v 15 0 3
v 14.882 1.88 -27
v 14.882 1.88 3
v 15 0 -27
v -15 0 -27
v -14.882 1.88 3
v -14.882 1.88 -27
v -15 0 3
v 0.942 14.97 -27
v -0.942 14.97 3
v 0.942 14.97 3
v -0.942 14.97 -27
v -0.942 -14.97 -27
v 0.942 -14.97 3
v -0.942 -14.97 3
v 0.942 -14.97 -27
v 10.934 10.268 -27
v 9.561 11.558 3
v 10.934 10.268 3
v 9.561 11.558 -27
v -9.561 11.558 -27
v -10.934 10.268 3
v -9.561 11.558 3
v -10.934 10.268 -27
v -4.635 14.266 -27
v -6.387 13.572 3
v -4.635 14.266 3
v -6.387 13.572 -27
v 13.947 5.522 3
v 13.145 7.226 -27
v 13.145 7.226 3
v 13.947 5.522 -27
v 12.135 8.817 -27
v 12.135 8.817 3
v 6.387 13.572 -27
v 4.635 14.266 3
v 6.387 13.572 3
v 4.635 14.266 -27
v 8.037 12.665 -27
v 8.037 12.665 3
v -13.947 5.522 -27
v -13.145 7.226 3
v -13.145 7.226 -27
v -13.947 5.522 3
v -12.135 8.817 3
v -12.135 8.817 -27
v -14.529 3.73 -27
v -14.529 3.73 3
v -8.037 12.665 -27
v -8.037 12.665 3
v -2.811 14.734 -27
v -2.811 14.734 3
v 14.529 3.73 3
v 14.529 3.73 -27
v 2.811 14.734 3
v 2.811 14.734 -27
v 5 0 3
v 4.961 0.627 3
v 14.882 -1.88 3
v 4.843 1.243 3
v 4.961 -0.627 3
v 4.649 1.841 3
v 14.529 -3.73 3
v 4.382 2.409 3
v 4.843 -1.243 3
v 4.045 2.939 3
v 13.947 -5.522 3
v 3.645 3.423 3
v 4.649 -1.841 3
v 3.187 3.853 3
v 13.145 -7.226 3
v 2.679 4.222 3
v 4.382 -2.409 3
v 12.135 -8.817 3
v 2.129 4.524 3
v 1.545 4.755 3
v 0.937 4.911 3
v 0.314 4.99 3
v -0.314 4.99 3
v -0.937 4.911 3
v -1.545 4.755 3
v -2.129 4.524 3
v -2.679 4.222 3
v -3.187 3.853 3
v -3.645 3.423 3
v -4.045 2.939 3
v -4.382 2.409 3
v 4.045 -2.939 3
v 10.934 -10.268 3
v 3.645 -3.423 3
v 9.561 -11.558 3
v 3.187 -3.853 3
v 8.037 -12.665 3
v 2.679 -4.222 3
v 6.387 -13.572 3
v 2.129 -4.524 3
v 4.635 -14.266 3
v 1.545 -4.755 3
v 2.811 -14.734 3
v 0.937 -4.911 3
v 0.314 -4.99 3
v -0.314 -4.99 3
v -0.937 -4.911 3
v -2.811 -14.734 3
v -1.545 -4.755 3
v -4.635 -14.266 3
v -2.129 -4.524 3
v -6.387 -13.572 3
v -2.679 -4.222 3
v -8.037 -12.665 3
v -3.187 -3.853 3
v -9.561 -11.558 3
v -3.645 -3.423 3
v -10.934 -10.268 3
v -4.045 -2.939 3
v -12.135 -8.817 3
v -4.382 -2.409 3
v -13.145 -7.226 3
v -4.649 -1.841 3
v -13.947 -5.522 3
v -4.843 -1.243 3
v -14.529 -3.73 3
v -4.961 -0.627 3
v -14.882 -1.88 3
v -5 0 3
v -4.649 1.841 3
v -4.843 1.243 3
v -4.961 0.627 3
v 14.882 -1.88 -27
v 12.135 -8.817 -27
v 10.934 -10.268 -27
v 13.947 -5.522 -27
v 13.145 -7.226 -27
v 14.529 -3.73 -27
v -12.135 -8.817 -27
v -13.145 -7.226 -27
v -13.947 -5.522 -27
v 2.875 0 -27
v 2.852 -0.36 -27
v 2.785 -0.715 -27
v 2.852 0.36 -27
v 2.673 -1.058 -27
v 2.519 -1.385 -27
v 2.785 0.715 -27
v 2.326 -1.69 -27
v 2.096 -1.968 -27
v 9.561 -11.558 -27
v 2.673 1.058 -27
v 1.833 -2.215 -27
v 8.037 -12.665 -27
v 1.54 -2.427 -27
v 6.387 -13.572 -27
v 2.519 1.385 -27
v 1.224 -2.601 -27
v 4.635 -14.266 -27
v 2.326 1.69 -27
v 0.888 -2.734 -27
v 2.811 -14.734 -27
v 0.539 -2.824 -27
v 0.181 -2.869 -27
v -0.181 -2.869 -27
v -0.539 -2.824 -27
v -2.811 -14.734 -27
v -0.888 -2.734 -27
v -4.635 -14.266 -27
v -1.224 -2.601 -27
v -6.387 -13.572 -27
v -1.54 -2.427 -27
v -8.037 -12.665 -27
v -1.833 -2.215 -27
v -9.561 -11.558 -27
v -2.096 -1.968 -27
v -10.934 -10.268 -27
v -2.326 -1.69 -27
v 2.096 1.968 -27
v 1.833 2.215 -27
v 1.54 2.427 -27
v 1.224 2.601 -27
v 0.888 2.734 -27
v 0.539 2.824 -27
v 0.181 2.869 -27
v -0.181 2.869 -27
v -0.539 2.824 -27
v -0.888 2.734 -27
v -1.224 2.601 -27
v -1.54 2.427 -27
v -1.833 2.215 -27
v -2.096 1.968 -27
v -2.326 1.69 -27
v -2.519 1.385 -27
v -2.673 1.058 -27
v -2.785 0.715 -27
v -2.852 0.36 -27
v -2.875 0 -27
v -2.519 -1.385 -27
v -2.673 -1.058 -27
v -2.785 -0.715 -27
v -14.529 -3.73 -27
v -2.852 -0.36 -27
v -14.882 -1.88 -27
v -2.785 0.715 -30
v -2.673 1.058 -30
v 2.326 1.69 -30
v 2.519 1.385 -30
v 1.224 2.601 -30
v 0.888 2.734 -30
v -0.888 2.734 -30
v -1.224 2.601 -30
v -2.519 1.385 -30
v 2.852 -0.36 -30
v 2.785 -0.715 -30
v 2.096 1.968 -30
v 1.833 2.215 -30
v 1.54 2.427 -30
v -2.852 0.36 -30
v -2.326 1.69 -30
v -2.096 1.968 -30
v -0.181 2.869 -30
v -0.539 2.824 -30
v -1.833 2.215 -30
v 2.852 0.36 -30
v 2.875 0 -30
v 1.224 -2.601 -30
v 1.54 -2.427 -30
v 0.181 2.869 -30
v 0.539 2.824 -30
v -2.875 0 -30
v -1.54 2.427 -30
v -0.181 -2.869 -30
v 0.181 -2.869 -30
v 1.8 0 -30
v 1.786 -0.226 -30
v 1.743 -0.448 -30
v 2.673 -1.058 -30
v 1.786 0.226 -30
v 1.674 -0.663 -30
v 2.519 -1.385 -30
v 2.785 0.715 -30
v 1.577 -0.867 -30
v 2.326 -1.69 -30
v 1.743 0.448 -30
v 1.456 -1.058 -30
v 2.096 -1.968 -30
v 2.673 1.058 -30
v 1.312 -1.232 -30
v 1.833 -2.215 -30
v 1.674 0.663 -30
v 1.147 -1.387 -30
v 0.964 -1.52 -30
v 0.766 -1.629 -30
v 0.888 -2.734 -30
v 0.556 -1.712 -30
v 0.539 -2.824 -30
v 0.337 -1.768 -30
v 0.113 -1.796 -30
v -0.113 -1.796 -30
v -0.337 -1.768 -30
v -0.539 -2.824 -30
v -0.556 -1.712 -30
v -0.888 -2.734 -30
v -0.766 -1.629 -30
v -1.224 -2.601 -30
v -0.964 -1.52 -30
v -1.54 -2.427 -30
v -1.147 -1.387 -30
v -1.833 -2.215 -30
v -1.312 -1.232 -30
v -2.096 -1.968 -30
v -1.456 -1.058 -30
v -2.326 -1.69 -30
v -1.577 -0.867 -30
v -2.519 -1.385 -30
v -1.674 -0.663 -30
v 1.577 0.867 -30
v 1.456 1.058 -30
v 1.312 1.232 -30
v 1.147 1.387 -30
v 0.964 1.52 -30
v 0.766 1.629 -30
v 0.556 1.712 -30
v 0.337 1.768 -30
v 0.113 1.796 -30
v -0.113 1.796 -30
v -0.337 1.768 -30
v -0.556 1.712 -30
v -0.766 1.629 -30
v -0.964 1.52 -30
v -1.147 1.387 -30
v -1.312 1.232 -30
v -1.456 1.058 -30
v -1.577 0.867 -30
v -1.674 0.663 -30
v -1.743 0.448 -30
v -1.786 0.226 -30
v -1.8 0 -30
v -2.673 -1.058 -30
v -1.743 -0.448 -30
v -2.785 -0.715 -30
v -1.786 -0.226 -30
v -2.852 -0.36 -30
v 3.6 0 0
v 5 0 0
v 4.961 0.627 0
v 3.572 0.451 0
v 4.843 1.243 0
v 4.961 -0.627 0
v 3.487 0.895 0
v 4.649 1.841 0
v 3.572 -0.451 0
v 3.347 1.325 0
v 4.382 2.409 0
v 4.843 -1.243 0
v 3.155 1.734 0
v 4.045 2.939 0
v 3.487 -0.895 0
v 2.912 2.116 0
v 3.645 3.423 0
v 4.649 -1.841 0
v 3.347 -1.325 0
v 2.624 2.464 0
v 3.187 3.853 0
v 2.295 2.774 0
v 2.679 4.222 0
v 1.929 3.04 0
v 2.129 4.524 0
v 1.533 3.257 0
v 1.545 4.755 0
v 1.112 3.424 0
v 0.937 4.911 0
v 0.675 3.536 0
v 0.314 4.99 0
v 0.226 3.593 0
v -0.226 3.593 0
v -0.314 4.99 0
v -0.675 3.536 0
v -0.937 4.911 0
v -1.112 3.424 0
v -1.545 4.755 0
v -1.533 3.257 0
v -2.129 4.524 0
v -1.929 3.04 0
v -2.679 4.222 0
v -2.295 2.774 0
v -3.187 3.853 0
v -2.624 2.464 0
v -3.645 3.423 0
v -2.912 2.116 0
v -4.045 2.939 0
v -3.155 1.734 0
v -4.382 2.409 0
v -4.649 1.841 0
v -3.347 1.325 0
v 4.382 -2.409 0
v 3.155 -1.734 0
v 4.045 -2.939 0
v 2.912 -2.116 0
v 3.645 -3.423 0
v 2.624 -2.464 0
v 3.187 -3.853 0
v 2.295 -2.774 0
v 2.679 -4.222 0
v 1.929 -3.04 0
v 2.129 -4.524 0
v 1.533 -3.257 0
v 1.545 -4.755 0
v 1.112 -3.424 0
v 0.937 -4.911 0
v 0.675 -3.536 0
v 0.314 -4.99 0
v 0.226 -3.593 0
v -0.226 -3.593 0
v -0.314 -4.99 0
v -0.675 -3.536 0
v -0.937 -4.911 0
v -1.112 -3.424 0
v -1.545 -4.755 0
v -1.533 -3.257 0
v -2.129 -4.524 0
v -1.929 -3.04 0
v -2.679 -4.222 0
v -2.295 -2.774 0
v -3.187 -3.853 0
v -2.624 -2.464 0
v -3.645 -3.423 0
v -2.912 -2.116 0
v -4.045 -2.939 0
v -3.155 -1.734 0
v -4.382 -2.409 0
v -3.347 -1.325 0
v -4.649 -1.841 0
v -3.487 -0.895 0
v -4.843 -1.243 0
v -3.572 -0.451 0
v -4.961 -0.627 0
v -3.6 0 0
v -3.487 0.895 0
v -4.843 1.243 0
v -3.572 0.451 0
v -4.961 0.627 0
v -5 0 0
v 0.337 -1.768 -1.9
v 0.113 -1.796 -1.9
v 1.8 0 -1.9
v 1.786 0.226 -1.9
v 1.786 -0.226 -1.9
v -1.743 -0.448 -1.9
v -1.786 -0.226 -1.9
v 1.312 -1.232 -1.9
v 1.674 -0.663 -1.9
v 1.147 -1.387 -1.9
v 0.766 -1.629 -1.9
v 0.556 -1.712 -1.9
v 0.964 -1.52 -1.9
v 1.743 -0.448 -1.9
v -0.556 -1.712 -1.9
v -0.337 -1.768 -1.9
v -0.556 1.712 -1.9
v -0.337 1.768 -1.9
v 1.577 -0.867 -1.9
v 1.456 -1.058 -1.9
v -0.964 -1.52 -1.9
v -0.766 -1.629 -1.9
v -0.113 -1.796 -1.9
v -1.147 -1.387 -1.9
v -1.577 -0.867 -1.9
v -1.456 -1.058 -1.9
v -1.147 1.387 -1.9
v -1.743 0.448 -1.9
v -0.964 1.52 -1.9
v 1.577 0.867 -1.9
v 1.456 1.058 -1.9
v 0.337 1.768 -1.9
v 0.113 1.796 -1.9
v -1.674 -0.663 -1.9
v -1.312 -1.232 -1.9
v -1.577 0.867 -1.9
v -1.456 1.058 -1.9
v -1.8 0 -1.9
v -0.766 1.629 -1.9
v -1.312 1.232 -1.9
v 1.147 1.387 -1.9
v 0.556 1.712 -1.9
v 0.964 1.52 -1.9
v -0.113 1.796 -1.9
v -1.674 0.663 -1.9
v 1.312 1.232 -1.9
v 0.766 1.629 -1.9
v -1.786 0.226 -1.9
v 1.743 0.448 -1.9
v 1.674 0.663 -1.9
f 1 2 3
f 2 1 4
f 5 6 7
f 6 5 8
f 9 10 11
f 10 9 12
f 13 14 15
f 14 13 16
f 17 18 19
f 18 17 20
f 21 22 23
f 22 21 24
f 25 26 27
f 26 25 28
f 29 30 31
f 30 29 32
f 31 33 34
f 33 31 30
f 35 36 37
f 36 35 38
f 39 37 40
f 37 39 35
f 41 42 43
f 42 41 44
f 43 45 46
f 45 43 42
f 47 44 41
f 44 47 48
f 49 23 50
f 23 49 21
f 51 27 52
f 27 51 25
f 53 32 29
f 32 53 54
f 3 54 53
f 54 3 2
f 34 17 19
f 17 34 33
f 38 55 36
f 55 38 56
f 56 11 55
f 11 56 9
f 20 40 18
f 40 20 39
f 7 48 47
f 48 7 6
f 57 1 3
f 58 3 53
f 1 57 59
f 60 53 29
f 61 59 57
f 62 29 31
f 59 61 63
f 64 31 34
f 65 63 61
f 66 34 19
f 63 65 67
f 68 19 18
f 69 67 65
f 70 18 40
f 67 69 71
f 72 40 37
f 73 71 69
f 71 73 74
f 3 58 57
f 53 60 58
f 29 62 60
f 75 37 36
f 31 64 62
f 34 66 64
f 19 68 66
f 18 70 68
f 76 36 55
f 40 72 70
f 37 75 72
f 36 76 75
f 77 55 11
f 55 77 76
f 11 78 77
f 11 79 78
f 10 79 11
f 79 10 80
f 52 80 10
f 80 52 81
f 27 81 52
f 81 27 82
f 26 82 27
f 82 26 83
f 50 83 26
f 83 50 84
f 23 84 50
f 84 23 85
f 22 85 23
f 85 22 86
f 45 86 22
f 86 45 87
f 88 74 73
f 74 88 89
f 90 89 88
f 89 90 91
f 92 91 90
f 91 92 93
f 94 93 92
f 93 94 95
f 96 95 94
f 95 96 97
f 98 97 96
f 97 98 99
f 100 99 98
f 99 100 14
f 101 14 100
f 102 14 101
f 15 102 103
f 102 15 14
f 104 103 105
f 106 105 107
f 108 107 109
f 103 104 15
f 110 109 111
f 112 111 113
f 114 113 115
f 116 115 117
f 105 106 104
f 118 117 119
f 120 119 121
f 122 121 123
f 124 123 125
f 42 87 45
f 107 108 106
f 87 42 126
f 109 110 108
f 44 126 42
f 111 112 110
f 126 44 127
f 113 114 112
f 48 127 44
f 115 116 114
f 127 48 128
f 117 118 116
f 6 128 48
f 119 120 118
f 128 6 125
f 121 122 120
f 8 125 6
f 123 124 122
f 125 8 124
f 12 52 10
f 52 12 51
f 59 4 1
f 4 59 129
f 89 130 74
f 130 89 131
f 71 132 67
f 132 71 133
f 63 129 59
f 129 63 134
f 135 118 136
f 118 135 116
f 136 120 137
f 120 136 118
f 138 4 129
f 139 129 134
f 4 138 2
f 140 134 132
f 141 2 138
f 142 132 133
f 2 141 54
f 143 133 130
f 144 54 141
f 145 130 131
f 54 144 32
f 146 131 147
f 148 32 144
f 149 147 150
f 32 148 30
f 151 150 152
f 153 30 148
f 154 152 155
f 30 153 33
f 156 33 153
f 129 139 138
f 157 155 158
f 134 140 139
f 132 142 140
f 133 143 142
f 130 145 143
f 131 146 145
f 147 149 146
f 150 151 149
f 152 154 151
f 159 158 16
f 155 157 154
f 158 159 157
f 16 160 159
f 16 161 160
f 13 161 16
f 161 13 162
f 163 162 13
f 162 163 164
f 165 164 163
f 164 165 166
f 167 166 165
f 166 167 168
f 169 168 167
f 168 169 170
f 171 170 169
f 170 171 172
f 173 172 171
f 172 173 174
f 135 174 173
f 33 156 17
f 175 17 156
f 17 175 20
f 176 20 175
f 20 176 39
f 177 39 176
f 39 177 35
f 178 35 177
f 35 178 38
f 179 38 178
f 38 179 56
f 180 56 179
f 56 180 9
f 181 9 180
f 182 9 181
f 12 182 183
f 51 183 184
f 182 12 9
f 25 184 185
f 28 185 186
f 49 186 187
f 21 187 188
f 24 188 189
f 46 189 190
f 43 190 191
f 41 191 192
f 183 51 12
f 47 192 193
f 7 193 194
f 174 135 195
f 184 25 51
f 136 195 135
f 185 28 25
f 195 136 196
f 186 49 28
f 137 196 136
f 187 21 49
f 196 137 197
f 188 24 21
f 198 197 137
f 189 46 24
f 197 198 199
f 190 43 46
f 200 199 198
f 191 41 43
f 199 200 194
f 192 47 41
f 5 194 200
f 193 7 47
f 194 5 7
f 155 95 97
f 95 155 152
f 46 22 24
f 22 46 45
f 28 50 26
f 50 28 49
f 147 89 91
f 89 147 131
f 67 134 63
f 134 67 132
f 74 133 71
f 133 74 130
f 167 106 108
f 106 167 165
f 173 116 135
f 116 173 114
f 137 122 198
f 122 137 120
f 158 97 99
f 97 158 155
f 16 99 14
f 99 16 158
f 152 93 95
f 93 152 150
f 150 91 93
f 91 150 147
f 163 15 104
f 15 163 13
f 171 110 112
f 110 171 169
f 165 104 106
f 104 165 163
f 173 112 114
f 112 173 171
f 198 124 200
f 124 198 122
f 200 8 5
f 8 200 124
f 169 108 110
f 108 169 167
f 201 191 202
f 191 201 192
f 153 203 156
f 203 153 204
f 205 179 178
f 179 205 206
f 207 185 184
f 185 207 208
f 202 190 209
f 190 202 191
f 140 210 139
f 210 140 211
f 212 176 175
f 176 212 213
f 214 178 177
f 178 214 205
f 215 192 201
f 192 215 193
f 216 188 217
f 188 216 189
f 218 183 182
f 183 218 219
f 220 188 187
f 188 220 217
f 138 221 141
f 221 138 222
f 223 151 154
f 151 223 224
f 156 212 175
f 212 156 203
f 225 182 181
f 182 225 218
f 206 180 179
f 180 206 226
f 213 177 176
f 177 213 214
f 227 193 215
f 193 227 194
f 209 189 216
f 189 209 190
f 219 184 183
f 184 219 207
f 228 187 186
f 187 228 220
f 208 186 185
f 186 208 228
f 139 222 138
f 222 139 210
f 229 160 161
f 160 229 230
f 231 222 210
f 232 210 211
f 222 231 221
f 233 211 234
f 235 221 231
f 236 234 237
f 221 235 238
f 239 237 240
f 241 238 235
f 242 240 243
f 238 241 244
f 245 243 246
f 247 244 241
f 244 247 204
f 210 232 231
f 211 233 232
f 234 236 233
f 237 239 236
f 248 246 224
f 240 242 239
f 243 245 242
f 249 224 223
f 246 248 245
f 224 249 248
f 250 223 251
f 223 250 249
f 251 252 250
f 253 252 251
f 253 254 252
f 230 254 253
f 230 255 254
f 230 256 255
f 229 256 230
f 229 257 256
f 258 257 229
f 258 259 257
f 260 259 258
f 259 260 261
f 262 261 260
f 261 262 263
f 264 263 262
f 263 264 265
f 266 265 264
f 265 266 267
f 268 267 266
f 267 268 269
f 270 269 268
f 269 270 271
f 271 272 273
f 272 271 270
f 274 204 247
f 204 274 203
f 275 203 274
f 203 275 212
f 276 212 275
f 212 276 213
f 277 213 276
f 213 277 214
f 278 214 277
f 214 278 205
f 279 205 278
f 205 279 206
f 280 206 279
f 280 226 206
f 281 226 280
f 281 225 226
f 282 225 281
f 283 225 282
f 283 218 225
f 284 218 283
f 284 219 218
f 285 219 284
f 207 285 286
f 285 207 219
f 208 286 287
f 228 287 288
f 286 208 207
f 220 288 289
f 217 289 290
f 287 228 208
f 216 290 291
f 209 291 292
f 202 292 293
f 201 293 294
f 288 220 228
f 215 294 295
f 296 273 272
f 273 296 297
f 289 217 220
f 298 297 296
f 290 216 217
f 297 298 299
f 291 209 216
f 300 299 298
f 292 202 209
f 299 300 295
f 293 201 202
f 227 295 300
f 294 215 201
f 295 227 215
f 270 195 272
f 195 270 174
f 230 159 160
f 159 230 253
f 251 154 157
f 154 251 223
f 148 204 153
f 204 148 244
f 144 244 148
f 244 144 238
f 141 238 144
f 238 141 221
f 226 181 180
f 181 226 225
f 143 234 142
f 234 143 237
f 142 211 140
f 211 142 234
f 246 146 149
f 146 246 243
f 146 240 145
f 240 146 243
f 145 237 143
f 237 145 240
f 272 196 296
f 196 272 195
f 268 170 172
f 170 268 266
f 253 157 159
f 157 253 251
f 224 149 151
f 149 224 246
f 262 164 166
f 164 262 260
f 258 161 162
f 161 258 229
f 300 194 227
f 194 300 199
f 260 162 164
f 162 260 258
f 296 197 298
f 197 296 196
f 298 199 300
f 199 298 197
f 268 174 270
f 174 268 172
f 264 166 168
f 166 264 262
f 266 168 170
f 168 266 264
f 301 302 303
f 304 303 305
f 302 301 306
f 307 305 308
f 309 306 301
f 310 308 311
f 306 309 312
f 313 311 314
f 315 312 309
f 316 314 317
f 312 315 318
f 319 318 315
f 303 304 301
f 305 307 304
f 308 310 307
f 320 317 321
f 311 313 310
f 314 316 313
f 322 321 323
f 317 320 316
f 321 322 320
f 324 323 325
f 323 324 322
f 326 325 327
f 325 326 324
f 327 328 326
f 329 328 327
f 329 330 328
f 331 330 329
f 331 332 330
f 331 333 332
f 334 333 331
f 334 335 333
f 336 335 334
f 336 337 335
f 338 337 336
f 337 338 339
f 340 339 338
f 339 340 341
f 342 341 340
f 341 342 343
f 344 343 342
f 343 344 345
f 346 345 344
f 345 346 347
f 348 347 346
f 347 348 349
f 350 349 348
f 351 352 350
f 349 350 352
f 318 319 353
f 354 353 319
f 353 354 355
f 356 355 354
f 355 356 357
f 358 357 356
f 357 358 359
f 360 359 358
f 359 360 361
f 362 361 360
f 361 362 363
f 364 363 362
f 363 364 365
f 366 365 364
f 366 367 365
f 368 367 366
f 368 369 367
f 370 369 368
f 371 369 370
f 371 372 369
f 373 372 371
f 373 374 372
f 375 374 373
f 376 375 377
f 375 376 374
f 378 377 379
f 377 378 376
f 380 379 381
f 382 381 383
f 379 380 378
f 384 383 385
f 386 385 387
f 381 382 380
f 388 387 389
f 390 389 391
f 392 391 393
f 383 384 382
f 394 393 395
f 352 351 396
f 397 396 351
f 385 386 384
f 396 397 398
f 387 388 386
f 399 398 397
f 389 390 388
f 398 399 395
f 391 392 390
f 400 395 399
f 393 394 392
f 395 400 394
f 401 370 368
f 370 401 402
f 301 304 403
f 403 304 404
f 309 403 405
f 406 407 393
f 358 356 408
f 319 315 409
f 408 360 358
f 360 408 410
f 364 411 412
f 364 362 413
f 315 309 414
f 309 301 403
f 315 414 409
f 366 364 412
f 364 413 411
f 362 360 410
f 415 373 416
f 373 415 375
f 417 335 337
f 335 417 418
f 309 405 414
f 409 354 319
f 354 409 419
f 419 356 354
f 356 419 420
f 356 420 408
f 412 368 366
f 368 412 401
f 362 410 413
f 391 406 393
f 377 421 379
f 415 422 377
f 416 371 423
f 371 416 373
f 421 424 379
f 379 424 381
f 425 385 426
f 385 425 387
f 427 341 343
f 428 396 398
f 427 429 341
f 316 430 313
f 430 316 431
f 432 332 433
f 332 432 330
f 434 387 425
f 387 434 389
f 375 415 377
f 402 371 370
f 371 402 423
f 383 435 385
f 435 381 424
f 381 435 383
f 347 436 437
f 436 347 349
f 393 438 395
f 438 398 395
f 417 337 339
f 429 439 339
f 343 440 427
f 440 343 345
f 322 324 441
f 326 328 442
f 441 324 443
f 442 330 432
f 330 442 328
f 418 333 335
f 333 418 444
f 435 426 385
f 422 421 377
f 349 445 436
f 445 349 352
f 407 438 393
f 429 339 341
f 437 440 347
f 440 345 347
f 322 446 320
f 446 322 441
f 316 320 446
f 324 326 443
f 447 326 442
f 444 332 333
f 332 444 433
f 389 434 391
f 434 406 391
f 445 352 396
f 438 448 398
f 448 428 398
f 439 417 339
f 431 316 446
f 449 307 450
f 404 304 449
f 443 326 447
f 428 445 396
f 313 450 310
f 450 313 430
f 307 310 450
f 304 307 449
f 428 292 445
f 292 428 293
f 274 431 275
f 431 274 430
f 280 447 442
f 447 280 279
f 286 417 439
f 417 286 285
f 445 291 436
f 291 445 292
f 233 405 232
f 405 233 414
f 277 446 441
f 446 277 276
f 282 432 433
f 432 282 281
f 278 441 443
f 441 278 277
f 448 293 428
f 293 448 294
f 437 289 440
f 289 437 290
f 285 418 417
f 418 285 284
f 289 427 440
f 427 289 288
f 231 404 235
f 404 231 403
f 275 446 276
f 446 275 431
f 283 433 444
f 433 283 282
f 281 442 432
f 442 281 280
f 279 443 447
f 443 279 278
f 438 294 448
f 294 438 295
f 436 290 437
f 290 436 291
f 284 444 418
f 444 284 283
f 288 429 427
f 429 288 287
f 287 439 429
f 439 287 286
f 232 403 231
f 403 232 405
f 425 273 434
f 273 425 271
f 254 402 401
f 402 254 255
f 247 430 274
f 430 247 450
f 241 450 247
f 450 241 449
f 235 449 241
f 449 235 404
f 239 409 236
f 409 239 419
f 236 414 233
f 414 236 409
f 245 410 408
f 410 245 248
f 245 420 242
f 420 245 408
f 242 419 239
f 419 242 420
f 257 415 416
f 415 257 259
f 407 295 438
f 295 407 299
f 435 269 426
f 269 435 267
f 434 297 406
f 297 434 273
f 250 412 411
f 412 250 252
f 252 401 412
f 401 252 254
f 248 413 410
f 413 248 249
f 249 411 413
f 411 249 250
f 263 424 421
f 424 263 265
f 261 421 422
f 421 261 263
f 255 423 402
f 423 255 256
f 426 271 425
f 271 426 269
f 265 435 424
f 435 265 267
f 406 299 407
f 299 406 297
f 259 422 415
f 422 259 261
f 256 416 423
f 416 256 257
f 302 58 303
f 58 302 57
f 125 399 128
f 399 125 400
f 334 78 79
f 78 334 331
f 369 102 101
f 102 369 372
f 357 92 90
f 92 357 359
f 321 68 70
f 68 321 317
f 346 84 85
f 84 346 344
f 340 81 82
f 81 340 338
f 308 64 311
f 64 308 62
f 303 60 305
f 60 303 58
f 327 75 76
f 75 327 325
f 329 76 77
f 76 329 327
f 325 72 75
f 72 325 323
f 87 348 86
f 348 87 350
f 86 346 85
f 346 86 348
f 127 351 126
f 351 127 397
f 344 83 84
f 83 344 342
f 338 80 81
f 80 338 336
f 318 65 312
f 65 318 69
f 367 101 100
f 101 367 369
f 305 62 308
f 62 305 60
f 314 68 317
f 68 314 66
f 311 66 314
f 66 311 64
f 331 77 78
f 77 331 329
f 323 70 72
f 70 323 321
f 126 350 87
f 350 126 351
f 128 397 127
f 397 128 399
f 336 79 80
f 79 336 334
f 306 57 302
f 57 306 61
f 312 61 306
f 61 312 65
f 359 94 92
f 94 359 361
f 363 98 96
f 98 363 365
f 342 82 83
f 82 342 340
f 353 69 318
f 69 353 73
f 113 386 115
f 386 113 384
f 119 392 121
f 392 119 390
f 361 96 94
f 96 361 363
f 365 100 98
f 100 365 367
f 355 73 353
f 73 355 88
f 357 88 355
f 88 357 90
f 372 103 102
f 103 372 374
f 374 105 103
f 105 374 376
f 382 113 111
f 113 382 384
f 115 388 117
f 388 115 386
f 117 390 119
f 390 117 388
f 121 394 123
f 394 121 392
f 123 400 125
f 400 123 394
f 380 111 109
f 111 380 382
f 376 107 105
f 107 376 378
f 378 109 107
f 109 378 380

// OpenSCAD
$fn = 50;


difference() {
	union() {
		translate(v = [0, 0, -27.0000000000]) {
			cylinder(h = 30, r = 15.0000000000);
		}
		#translate(v = [0, 0, -30.0000000000]) {
			cylinder(h = 30, r = 2.8750000000);
		}
	}
	union() {
		translate(v = [0, 0, 0]) {
			rotate(a = [0, 0, 0]) {
				difference() {
					union() {
						translate(v = [0, 0, -30.0000000000]) {
							cylinder(h = 30, r = 1.5000000000);
						}
						translate(v = [0, 0, -1.9000000000]) {
							cylinder(h = 1.9000000000, r1 = 1.8000000000, r2 = 3.6000000000);
						}
						translate(v = [0, 0, -30.0000000000]) {
							cylinder(h = 30, r = 1.8000000000);
						}
						translate(v = [0, 0, -30.0000000000]) {
							cylinder(h = 30, r = 1.5000000000);
						}
					}
					union();
				}
			}
		}
		#cylinder(h = 3, r = 5.0000000000);
	}
}
